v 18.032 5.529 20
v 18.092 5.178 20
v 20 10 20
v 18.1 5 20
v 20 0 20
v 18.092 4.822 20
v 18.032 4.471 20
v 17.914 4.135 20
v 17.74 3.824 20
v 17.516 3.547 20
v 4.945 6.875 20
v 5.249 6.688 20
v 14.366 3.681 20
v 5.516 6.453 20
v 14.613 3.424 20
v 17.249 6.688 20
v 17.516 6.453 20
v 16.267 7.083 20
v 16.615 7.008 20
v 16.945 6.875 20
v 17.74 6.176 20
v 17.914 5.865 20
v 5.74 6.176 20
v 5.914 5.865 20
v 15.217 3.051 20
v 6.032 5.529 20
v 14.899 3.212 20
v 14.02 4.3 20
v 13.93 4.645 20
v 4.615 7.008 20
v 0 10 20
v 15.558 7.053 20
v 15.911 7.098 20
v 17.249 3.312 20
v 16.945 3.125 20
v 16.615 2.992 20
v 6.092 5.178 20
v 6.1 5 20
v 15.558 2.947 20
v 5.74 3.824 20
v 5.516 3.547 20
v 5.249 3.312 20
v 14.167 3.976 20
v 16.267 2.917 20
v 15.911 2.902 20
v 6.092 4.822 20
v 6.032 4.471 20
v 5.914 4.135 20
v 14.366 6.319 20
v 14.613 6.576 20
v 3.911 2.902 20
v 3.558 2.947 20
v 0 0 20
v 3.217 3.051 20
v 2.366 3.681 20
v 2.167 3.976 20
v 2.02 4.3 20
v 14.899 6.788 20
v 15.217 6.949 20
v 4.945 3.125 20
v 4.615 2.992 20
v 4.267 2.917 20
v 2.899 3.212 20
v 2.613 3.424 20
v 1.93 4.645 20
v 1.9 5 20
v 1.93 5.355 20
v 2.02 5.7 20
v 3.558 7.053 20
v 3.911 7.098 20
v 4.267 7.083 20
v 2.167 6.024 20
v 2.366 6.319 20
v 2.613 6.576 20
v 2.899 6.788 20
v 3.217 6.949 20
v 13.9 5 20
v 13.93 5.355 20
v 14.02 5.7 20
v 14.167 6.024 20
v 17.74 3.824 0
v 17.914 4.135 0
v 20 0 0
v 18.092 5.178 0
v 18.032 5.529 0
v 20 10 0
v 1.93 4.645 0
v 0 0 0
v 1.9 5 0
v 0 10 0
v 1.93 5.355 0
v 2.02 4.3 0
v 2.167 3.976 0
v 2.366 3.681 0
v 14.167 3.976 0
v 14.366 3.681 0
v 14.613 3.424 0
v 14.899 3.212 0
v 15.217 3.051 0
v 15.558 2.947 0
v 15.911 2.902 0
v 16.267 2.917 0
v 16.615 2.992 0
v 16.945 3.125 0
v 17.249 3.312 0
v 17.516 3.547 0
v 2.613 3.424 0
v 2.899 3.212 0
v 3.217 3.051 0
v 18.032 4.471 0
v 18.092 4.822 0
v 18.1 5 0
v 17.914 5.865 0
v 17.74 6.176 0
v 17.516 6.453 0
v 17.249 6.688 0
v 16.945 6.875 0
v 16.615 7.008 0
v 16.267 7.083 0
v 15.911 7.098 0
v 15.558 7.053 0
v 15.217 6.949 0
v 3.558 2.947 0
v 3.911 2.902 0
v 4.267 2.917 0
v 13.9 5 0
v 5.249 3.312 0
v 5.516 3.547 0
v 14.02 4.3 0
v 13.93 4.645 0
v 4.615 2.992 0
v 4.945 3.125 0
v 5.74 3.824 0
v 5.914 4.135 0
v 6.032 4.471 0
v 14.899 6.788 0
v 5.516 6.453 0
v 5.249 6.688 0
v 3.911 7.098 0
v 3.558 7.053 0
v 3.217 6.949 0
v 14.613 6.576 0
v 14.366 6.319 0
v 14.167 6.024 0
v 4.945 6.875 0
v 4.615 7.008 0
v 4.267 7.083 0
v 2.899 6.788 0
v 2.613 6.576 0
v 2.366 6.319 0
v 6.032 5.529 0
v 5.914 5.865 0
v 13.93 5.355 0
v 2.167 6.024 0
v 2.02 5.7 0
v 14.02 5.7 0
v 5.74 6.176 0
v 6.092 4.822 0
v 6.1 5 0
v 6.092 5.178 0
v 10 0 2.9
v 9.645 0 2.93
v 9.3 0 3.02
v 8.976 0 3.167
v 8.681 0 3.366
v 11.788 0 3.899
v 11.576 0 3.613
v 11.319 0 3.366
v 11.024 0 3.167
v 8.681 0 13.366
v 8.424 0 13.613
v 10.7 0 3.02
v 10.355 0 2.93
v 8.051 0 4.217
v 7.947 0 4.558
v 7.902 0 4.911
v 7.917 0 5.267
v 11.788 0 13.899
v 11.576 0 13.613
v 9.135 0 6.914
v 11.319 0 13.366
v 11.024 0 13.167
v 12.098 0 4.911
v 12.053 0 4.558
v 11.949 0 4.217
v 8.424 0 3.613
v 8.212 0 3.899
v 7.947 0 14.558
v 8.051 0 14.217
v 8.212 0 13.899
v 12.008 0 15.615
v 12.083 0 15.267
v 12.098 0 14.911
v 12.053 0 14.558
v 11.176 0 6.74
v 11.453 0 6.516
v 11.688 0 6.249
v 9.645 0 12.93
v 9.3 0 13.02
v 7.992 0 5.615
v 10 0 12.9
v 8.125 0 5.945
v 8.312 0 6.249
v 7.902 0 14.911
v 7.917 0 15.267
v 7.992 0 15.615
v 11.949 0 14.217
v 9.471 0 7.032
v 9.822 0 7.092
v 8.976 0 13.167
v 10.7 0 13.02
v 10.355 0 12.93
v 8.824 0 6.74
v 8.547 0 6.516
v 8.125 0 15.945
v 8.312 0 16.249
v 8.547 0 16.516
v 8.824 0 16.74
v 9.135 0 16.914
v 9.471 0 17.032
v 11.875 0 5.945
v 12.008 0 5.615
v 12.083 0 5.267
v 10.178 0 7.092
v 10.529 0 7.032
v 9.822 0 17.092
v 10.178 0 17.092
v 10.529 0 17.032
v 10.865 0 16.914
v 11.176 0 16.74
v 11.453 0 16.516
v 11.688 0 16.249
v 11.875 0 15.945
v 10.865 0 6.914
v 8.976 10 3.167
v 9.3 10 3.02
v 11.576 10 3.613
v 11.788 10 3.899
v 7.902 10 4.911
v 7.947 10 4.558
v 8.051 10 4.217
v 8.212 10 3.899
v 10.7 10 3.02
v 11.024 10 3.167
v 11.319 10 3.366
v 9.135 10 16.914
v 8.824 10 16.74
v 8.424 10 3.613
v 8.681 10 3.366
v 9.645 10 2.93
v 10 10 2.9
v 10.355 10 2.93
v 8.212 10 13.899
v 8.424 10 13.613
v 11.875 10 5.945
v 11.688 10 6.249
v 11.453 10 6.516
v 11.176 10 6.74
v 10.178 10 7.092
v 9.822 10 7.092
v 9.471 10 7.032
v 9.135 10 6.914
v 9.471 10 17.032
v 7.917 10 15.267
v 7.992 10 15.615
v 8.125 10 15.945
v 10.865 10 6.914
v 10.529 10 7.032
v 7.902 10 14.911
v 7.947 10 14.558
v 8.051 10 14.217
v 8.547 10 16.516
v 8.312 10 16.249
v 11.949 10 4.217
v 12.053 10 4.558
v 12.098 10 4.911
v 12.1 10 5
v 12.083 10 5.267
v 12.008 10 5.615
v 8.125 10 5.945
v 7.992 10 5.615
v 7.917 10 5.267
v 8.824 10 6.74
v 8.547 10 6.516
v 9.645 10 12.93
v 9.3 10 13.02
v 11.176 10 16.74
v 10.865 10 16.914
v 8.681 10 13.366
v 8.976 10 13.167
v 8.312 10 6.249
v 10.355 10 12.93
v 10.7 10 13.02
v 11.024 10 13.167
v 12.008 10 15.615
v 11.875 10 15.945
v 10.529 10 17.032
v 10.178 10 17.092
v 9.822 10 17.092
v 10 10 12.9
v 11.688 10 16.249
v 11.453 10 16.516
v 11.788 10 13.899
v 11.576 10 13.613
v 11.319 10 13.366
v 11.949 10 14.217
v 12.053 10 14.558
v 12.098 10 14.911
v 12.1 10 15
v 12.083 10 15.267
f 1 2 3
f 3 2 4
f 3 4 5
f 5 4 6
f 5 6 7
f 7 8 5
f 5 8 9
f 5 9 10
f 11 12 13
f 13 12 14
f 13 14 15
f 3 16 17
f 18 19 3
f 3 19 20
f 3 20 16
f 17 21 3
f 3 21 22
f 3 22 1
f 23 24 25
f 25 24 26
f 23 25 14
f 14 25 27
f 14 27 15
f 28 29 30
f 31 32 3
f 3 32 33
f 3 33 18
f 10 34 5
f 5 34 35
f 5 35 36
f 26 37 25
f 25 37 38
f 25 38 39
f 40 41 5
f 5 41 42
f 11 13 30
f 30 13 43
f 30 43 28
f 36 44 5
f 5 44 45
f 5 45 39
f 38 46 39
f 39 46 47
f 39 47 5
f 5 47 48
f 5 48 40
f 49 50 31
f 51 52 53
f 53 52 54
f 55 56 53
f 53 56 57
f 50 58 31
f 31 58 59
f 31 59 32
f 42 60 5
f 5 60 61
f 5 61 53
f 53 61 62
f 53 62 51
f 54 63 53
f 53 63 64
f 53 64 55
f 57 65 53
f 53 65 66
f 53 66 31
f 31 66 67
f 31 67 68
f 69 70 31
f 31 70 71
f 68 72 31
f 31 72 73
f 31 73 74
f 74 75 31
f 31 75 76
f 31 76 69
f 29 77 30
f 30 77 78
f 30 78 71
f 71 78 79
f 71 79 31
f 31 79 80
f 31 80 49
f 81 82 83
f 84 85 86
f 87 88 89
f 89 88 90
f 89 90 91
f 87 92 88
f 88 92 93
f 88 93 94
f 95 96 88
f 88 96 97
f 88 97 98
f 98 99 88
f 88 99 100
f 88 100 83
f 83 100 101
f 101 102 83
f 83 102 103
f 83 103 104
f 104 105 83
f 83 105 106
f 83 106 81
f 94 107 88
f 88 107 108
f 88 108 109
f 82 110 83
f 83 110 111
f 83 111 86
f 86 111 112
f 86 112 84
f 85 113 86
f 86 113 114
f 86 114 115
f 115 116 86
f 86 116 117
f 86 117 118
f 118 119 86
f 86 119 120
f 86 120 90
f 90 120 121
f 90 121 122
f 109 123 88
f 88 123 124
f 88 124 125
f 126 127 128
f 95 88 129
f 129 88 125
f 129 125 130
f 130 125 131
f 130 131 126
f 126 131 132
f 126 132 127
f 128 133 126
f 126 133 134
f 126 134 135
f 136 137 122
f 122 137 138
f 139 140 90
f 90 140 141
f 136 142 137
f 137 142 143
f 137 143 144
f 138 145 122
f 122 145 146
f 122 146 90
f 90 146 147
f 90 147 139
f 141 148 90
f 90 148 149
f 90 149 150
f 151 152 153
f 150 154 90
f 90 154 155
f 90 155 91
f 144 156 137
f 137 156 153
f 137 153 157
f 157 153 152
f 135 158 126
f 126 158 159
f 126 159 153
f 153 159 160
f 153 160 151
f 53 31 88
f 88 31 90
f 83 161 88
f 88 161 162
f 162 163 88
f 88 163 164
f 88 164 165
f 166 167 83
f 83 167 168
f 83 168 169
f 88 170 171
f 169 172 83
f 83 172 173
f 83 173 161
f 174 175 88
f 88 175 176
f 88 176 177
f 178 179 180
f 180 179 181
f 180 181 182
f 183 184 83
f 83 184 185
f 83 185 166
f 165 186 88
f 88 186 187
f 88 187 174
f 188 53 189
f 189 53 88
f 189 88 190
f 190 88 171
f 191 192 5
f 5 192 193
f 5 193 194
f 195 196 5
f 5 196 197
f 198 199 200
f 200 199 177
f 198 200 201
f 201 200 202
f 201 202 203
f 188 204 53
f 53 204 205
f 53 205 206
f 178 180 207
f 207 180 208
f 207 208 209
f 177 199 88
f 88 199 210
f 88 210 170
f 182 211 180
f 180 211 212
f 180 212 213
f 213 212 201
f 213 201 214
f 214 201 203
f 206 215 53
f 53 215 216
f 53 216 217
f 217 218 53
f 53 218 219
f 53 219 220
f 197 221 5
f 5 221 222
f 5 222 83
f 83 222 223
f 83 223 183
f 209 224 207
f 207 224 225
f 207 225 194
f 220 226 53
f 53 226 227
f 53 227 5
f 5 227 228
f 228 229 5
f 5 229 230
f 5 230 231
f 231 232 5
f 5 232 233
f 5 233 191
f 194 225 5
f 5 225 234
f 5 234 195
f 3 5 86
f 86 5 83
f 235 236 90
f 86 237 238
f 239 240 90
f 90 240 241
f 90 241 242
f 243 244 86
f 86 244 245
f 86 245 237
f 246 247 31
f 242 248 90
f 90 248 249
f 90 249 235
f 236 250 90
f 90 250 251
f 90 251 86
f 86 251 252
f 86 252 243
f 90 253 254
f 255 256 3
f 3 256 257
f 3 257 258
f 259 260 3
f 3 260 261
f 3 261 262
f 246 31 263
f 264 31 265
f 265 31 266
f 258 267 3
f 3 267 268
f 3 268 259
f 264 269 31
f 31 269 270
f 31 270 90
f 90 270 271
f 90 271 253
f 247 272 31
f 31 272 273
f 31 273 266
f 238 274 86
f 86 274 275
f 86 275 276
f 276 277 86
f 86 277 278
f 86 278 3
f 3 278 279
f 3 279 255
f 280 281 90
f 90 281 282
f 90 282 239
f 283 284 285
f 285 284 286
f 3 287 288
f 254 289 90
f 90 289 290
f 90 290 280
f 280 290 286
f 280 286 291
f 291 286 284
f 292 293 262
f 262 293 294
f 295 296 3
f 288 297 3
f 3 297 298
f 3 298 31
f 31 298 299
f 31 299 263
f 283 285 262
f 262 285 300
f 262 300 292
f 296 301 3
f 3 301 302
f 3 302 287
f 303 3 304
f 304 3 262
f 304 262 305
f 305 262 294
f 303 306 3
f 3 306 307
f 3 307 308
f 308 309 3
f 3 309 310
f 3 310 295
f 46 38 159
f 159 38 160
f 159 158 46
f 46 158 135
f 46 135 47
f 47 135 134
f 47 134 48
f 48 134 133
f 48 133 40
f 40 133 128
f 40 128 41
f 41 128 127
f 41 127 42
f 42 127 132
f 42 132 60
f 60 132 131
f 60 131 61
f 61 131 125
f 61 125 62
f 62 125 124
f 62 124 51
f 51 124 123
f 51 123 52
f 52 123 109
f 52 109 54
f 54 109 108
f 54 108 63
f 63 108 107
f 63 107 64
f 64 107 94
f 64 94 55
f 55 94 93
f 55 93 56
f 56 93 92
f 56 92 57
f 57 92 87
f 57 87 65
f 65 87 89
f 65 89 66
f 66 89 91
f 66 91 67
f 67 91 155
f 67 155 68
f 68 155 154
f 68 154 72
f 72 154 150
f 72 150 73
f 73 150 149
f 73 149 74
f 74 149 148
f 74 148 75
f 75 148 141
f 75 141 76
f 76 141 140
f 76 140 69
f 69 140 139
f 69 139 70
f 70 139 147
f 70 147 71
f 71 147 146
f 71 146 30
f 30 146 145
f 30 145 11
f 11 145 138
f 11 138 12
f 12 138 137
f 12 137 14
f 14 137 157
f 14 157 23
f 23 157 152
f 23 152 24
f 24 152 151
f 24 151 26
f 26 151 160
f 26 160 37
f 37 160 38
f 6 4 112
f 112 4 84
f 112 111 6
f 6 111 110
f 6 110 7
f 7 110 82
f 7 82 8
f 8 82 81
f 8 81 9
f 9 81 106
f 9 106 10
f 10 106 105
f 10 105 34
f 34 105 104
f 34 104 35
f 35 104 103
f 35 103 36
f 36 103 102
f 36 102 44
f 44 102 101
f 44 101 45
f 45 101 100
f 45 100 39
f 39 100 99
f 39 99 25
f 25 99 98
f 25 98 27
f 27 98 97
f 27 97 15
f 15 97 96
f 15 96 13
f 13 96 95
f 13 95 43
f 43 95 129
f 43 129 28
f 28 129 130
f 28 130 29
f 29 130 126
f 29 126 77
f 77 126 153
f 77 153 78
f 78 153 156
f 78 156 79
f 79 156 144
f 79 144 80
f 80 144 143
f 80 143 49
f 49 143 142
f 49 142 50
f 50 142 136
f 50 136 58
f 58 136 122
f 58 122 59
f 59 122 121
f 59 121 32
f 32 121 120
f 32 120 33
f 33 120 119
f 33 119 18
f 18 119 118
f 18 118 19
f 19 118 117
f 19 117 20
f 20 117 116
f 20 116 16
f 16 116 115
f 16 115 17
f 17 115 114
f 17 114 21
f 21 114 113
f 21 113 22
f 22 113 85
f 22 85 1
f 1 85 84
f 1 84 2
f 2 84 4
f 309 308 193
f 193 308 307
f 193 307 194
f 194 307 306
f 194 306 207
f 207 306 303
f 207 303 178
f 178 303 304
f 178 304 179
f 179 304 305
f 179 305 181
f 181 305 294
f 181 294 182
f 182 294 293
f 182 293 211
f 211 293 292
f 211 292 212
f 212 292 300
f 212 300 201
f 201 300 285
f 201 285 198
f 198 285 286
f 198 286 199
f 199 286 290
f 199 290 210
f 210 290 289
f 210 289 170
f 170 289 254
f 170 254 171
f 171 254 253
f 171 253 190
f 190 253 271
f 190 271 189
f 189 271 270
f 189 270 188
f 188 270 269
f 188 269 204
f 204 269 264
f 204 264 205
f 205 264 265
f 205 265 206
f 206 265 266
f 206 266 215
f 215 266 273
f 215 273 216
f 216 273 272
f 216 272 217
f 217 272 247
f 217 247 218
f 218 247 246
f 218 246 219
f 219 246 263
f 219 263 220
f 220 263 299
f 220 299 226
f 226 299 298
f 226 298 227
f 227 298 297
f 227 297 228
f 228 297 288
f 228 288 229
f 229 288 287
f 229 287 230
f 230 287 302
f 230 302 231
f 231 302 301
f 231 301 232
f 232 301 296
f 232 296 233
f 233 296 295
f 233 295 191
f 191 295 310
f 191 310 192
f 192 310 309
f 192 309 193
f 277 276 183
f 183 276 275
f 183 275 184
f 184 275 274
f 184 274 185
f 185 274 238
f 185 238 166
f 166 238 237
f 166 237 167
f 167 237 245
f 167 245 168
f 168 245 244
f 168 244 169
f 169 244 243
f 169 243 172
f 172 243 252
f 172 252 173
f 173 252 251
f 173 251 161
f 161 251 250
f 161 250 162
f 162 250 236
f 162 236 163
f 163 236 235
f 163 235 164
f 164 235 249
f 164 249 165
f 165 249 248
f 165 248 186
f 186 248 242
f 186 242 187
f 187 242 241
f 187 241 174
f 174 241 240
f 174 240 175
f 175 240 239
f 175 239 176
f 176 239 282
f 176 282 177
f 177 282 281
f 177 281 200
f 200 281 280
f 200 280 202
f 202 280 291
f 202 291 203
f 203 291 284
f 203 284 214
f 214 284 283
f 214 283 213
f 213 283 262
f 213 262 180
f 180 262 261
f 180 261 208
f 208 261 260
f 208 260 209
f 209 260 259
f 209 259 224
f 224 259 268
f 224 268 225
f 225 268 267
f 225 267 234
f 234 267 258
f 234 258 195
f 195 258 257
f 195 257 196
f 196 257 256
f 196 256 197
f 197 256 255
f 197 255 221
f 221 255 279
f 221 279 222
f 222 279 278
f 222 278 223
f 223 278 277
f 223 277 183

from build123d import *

# Parameters (mm, degrees)
SKETCH1_W           = 20
SKETCH1_H           = 10
SKETCH1_R           = 2.1
BOSS_EXTRUDE1_DEPTH = 20
SKETCH2_R           = 2.1
CUT_EXTRUDE1_DEPTH  = 30


with BuildPart() as part:
    # Sketch1 → Boss-Extrude1 (new body)
    with BuildSketch(Plane.XY):
        with Locations((10, 5)):
            Rectangle(SKETCH1_W, SKETCH1_H)
        with Locations((4, 5)):
            Circle(SKETCH1_R, mode=Mode.SUBTRACT)
        with Locations((16, 5)):
            Circle(SKETCH1_R, mode=Mode.SUBTRACT)
    extrude(amount=BOSS_EXTRUDE1_DEPTH)

    # Sketch2 → Cut-Extrude1 (cut)
    with BuildSketch(Plane.XZ):
        with Locations((10, 15)):
            Circle(SKETCH2_R)
        with Locations((10, 5)):
            Circle(SKETCH2_R)
    extrude(amount=-CUT_EXTRUDE1_DEPTH, mode=Mode.SUBTRACT)


solid = part.part
